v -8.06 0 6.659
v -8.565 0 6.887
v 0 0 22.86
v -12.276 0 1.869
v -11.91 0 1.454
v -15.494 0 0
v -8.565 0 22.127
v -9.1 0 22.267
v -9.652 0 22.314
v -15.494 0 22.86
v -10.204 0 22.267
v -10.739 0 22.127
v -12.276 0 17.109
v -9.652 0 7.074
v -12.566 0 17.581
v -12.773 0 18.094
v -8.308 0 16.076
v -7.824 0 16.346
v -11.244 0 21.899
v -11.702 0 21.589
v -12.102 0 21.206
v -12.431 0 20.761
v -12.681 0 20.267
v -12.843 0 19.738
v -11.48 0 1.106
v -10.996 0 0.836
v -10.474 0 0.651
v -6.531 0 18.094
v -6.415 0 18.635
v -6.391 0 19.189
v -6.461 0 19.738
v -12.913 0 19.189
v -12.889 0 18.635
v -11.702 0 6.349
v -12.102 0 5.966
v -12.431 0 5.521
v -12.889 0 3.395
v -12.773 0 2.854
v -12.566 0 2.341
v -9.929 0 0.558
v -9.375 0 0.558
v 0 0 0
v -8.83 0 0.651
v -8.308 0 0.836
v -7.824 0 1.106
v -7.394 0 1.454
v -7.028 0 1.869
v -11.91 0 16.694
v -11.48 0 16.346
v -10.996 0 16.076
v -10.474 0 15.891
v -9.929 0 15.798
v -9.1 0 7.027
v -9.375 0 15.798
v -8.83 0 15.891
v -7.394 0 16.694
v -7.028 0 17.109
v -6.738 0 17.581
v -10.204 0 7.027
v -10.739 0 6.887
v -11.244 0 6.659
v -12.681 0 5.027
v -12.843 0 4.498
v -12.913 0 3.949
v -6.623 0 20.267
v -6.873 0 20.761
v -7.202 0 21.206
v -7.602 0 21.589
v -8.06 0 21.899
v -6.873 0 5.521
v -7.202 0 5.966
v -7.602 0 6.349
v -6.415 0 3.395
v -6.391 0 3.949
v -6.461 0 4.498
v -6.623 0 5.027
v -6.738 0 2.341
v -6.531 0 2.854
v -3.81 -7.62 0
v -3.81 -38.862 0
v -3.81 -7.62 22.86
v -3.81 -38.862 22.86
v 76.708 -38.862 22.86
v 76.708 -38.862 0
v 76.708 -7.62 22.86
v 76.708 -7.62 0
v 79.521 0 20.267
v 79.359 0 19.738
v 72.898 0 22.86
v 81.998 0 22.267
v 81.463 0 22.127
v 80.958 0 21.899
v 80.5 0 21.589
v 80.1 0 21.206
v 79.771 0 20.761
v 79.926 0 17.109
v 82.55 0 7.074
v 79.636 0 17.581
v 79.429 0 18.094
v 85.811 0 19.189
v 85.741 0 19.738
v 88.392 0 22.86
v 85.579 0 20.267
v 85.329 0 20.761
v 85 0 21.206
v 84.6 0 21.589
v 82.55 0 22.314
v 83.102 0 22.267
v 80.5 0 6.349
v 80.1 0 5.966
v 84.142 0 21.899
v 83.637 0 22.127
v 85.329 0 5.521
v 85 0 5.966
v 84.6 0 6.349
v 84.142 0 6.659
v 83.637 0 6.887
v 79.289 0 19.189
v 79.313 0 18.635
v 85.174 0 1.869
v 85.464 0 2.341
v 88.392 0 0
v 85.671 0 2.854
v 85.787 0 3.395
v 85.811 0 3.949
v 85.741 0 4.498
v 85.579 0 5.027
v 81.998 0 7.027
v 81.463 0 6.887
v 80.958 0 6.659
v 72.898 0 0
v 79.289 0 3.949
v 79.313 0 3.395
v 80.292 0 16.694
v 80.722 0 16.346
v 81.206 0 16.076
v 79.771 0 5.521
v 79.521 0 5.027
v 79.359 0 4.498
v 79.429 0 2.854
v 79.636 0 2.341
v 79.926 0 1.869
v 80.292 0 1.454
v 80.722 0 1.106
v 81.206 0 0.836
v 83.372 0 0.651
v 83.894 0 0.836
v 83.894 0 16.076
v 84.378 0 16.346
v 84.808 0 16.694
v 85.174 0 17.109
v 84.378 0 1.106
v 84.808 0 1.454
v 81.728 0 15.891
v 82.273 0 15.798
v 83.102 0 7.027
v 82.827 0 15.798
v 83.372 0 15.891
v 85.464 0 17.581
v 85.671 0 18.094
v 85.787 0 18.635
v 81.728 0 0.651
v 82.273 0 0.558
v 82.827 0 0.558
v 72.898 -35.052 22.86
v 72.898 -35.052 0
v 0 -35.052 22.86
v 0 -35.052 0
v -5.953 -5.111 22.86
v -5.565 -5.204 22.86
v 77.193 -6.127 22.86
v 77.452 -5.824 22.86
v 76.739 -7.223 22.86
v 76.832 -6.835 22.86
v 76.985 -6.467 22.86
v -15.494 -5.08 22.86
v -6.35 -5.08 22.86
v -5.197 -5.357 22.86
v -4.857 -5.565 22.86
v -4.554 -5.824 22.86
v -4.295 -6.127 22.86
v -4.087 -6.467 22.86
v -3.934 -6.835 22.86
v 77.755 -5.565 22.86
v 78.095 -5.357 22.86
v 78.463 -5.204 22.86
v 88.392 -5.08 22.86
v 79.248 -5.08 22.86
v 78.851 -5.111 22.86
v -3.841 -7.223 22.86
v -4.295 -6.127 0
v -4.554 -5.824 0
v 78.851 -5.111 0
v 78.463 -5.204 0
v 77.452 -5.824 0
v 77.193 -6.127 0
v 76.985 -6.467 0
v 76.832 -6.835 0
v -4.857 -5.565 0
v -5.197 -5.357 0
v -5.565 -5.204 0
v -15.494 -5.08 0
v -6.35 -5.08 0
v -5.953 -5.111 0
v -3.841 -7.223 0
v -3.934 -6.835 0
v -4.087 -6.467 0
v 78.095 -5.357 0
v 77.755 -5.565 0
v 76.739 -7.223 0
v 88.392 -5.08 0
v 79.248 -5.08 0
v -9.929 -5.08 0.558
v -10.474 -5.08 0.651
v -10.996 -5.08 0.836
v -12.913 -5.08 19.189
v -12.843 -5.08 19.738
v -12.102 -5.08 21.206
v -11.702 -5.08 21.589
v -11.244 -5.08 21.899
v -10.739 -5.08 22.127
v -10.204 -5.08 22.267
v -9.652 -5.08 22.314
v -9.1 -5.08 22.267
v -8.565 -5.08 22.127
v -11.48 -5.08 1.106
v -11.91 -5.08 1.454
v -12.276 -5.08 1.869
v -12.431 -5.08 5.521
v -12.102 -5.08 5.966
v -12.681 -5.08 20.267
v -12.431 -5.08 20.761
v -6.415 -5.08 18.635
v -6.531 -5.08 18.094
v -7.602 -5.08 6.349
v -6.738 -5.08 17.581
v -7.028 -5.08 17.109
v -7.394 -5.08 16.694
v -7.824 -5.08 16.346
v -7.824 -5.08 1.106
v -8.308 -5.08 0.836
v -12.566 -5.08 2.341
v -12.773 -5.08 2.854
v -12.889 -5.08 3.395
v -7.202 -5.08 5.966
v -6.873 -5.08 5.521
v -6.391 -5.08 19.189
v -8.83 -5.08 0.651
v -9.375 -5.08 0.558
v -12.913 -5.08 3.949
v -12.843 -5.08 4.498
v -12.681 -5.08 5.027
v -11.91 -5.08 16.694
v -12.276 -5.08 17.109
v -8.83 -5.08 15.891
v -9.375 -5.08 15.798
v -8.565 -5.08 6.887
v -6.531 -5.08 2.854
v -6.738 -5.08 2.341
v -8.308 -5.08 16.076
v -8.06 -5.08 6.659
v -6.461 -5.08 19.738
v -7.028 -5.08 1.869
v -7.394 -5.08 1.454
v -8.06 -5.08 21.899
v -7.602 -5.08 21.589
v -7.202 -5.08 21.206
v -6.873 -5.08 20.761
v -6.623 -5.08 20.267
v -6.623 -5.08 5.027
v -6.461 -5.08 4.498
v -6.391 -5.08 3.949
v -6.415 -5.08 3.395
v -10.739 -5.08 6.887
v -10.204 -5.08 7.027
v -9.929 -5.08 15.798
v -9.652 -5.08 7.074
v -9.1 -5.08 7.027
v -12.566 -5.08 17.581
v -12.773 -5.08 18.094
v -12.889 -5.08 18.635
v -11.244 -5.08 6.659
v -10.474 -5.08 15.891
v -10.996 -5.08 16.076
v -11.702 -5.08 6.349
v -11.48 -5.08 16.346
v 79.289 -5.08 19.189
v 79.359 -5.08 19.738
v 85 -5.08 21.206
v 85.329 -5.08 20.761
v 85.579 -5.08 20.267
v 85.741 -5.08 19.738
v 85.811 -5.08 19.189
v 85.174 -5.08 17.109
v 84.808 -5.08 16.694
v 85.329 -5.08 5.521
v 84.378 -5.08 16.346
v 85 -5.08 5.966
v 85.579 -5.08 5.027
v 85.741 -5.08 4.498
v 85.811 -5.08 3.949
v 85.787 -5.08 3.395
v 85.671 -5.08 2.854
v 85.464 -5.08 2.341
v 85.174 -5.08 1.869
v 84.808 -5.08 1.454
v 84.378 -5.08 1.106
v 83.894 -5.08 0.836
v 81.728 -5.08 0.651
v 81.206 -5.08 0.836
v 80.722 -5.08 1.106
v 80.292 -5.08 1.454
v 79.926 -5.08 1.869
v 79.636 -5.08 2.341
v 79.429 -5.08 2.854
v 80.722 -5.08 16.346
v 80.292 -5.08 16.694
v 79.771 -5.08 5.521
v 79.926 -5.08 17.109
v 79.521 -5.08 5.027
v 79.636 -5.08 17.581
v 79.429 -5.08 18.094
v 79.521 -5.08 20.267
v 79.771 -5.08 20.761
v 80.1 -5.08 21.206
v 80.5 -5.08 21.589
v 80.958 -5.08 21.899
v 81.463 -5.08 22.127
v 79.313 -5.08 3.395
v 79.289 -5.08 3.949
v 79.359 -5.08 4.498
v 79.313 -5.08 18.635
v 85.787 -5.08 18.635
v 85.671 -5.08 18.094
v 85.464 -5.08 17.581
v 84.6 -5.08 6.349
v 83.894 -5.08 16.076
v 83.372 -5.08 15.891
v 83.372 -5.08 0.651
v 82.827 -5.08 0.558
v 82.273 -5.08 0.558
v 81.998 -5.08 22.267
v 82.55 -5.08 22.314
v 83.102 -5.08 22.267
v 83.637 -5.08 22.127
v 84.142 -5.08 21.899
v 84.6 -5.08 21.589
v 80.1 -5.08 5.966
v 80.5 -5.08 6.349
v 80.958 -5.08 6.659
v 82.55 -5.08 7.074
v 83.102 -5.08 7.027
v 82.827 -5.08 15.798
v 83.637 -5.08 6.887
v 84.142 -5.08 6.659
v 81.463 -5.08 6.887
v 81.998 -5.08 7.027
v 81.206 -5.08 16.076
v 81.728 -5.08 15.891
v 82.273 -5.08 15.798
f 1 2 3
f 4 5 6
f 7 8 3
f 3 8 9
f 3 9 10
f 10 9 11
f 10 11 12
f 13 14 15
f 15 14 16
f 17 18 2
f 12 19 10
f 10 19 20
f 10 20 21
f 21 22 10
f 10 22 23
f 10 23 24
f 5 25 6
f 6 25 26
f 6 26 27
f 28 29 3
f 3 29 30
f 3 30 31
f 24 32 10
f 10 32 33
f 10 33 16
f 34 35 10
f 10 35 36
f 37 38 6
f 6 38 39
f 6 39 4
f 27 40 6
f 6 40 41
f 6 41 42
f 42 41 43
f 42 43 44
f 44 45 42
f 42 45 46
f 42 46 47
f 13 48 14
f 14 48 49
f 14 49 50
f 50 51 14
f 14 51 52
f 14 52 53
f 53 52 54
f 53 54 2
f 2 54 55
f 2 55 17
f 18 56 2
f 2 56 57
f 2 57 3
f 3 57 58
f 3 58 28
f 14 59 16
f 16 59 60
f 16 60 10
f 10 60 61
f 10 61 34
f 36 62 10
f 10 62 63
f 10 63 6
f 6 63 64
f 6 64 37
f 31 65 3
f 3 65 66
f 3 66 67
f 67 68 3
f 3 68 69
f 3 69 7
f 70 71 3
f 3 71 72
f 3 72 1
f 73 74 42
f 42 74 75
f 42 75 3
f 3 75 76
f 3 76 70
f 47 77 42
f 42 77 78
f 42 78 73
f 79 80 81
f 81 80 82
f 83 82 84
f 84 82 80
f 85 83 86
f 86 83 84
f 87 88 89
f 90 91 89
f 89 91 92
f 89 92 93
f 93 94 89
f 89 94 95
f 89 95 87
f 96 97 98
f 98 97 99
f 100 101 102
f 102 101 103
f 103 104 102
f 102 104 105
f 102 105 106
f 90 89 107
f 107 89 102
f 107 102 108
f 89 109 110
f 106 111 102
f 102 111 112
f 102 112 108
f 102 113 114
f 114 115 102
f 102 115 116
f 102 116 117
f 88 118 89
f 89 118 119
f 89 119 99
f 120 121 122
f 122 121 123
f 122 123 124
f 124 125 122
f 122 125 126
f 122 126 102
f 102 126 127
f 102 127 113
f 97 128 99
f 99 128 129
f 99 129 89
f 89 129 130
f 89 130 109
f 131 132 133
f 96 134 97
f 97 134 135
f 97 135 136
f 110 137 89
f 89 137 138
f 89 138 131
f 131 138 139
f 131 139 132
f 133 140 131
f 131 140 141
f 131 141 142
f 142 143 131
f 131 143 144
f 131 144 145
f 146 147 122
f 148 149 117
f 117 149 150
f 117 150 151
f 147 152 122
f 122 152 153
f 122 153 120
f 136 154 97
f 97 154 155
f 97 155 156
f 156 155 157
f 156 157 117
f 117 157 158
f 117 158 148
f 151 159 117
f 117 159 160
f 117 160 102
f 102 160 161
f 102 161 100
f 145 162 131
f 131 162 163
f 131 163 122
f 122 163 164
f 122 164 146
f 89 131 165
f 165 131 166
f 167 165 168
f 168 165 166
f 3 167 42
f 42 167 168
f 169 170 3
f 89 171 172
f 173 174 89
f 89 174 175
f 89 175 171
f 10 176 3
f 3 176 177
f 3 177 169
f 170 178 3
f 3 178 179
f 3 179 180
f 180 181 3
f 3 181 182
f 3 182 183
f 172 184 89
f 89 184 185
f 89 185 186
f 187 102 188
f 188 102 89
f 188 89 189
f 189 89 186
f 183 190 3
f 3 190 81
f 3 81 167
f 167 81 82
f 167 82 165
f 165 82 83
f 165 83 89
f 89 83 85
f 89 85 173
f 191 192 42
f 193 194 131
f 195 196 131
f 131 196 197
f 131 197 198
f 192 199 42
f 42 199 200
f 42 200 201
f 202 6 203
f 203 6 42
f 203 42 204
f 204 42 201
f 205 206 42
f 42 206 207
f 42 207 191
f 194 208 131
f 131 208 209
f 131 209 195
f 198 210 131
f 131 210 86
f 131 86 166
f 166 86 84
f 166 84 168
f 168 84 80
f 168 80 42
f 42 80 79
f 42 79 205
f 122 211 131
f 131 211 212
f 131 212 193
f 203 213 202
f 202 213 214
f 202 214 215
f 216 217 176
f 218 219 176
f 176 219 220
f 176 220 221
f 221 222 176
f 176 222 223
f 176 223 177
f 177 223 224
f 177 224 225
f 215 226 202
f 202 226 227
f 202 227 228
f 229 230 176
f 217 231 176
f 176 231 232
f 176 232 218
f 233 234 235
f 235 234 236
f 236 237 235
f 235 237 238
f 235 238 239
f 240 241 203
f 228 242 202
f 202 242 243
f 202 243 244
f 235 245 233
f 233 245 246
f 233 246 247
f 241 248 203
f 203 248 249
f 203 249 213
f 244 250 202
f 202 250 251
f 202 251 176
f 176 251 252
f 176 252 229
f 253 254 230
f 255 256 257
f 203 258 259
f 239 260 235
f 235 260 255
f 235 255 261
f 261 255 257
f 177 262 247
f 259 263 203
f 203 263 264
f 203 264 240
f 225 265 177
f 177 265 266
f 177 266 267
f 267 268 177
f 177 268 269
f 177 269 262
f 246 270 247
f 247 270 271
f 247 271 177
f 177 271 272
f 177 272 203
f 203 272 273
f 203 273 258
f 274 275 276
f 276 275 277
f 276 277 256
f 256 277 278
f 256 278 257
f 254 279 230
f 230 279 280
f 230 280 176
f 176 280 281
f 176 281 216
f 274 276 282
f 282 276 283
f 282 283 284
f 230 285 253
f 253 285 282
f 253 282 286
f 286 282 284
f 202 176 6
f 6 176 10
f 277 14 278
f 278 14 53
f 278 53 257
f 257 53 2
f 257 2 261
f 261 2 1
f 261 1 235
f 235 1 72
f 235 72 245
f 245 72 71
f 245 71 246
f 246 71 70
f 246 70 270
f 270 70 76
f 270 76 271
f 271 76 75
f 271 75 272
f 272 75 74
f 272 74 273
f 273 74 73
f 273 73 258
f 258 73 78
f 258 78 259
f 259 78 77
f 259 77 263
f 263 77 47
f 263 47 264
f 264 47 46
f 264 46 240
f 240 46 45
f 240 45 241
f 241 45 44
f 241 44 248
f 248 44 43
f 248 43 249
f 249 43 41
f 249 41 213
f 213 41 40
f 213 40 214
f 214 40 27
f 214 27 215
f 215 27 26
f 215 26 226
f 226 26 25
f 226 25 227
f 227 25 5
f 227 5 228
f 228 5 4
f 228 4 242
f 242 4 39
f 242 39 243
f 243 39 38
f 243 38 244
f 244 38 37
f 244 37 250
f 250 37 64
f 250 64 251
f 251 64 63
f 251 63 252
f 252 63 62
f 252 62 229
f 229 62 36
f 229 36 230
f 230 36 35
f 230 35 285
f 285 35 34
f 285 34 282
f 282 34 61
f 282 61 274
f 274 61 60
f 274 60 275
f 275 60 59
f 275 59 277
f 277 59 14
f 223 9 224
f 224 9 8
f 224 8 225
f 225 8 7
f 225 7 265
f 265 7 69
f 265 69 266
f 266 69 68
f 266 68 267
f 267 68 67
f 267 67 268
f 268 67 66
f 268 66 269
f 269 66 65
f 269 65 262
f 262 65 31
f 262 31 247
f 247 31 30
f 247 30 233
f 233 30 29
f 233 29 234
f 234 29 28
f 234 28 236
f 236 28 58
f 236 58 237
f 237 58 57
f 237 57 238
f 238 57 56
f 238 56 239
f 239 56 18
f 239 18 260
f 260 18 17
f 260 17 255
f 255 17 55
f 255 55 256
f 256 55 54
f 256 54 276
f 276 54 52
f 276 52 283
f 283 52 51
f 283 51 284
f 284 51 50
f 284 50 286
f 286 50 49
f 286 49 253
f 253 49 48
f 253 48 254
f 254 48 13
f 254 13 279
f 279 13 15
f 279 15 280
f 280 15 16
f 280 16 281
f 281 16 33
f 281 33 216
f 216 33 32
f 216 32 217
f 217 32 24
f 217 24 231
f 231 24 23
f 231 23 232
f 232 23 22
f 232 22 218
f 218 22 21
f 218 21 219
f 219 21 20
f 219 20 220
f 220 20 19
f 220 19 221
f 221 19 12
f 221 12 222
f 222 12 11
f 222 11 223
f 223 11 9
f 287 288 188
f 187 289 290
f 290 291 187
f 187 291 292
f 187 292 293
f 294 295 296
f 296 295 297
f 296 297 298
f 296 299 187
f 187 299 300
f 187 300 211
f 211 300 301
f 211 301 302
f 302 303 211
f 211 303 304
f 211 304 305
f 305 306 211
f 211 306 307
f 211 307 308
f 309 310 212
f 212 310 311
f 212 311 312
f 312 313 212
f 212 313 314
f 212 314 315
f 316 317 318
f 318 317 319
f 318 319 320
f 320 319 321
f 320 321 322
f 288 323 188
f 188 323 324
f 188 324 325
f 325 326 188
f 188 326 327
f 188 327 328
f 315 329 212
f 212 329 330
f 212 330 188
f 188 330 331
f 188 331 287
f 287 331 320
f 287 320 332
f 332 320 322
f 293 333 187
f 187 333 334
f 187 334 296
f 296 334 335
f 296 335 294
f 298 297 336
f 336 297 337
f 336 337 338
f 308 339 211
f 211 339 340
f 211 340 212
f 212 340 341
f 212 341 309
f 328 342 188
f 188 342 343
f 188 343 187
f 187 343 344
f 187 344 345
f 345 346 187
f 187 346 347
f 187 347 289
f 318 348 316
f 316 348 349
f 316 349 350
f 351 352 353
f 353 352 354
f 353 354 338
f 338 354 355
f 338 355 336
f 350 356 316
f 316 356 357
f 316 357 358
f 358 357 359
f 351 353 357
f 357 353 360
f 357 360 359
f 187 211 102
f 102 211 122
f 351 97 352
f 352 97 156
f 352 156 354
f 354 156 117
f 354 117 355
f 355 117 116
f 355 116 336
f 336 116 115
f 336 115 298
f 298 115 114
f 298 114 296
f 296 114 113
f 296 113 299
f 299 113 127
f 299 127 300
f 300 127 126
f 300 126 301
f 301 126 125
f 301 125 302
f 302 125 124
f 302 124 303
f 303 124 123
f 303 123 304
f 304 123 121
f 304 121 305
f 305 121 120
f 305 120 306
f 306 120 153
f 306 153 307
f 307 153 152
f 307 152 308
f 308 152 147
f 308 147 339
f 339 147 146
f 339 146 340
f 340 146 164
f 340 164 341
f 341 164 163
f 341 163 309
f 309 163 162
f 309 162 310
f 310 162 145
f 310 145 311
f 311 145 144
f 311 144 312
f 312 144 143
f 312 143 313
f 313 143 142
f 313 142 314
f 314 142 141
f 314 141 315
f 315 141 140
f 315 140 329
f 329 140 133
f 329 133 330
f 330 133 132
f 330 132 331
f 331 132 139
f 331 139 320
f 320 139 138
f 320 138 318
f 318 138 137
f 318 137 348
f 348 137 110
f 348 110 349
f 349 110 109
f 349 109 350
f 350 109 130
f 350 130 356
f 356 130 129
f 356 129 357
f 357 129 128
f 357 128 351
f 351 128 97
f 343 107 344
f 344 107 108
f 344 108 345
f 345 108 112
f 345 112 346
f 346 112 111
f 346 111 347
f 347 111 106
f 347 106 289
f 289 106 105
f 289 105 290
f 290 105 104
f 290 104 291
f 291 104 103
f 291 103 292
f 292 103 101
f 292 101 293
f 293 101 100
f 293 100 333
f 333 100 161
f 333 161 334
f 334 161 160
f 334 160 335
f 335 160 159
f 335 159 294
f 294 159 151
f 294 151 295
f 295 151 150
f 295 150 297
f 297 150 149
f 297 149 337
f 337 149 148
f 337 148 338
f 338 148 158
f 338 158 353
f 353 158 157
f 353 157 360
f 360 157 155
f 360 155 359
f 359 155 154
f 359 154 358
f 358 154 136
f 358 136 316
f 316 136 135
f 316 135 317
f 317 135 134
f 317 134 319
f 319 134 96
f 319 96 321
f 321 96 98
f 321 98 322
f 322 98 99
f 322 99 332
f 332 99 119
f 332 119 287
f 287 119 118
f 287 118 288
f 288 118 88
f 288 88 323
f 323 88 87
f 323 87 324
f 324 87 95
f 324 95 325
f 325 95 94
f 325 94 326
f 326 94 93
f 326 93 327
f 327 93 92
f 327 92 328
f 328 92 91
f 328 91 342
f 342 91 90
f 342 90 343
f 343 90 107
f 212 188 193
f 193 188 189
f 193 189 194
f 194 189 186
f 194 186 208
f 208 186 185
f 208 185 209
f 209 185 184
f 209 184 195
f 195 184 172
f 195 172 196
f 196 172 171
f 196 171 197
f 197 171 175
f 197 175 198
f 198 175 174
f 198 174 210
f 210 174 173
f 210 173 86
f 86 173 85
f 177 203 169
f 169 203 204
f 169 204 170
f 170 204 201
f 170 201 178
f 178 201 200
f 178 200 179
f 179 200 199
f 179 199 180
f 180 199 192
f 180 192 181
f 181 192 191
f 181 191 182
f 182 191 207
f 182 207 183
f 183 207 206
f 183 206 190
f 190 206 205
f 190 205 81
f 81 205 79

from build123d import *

# Parameters (mm, degrees)
BOSS_EXTRUDE1_DEPTH = 22.86
SKETCH2_W           = 15.494
SKETCH2_H           = 22.86
SKETCH2_R           = 3.2639
BOSS_EXTRUDE2_DEPTH = 5.08
FILLET1_R           = 2.54


with BuildPart() as part:
    # Sketch1 → Boss-Extrude1 (new body)
    with BuildSketch(Plane.XY):
        Polygon((0, 0), (0, -35.052), (72.898, -35.052), (72.898, 0), (76.708, 0), (76.708, -38.862), (-3.81, -38.862), (-3.81, 0), align=None)
    extrude(amount=BOSS_EXTRUDE1_DEPTH)

    # Sketch2 → Boss-Extrude2 (add)
    with BuildSketch(Plane(origin=(0, 0, 0), x_dir=(1, 0, 0), z_dir=(0, 1, 0))):
        with Locations((-7.747, -11.43)):
            Rectangle(SKETCH2_W, SKETCH2_H)
        with Locations(Location((-9.652, -3.81, 0), (0, 0, 270))):
            Circle(SKETCH2_R, mode=Mode.SUBTRACT)
        with Locations(Location((-9.652, -19.05, 0), (0, 0, 270))):
            Circle(SKETCH2_R, mode=Mode.SUBTRACT)
    boss_extrude2 = extrude(amount=-BOSS_EXTRUDE2_DEPTH)

    # Mirror1: Boss-Extrude2 across plane
    add(boss_extrude2.mirror(Plane(origin=(36.449, 0, 0), x_dir=(0, 0, 1), z_dir=(1, 0, 0))))

    # Fillet1
    fillet1_edges = [part.edges().sort_by_distance(p)[0] for p in [
        (-3.81, -5.08, 11.43),
        (76.708, -5.08, 11.43),
    ]]
    fillet(fillet1_edges, radius=FILLET1_R)


solid = part.part
